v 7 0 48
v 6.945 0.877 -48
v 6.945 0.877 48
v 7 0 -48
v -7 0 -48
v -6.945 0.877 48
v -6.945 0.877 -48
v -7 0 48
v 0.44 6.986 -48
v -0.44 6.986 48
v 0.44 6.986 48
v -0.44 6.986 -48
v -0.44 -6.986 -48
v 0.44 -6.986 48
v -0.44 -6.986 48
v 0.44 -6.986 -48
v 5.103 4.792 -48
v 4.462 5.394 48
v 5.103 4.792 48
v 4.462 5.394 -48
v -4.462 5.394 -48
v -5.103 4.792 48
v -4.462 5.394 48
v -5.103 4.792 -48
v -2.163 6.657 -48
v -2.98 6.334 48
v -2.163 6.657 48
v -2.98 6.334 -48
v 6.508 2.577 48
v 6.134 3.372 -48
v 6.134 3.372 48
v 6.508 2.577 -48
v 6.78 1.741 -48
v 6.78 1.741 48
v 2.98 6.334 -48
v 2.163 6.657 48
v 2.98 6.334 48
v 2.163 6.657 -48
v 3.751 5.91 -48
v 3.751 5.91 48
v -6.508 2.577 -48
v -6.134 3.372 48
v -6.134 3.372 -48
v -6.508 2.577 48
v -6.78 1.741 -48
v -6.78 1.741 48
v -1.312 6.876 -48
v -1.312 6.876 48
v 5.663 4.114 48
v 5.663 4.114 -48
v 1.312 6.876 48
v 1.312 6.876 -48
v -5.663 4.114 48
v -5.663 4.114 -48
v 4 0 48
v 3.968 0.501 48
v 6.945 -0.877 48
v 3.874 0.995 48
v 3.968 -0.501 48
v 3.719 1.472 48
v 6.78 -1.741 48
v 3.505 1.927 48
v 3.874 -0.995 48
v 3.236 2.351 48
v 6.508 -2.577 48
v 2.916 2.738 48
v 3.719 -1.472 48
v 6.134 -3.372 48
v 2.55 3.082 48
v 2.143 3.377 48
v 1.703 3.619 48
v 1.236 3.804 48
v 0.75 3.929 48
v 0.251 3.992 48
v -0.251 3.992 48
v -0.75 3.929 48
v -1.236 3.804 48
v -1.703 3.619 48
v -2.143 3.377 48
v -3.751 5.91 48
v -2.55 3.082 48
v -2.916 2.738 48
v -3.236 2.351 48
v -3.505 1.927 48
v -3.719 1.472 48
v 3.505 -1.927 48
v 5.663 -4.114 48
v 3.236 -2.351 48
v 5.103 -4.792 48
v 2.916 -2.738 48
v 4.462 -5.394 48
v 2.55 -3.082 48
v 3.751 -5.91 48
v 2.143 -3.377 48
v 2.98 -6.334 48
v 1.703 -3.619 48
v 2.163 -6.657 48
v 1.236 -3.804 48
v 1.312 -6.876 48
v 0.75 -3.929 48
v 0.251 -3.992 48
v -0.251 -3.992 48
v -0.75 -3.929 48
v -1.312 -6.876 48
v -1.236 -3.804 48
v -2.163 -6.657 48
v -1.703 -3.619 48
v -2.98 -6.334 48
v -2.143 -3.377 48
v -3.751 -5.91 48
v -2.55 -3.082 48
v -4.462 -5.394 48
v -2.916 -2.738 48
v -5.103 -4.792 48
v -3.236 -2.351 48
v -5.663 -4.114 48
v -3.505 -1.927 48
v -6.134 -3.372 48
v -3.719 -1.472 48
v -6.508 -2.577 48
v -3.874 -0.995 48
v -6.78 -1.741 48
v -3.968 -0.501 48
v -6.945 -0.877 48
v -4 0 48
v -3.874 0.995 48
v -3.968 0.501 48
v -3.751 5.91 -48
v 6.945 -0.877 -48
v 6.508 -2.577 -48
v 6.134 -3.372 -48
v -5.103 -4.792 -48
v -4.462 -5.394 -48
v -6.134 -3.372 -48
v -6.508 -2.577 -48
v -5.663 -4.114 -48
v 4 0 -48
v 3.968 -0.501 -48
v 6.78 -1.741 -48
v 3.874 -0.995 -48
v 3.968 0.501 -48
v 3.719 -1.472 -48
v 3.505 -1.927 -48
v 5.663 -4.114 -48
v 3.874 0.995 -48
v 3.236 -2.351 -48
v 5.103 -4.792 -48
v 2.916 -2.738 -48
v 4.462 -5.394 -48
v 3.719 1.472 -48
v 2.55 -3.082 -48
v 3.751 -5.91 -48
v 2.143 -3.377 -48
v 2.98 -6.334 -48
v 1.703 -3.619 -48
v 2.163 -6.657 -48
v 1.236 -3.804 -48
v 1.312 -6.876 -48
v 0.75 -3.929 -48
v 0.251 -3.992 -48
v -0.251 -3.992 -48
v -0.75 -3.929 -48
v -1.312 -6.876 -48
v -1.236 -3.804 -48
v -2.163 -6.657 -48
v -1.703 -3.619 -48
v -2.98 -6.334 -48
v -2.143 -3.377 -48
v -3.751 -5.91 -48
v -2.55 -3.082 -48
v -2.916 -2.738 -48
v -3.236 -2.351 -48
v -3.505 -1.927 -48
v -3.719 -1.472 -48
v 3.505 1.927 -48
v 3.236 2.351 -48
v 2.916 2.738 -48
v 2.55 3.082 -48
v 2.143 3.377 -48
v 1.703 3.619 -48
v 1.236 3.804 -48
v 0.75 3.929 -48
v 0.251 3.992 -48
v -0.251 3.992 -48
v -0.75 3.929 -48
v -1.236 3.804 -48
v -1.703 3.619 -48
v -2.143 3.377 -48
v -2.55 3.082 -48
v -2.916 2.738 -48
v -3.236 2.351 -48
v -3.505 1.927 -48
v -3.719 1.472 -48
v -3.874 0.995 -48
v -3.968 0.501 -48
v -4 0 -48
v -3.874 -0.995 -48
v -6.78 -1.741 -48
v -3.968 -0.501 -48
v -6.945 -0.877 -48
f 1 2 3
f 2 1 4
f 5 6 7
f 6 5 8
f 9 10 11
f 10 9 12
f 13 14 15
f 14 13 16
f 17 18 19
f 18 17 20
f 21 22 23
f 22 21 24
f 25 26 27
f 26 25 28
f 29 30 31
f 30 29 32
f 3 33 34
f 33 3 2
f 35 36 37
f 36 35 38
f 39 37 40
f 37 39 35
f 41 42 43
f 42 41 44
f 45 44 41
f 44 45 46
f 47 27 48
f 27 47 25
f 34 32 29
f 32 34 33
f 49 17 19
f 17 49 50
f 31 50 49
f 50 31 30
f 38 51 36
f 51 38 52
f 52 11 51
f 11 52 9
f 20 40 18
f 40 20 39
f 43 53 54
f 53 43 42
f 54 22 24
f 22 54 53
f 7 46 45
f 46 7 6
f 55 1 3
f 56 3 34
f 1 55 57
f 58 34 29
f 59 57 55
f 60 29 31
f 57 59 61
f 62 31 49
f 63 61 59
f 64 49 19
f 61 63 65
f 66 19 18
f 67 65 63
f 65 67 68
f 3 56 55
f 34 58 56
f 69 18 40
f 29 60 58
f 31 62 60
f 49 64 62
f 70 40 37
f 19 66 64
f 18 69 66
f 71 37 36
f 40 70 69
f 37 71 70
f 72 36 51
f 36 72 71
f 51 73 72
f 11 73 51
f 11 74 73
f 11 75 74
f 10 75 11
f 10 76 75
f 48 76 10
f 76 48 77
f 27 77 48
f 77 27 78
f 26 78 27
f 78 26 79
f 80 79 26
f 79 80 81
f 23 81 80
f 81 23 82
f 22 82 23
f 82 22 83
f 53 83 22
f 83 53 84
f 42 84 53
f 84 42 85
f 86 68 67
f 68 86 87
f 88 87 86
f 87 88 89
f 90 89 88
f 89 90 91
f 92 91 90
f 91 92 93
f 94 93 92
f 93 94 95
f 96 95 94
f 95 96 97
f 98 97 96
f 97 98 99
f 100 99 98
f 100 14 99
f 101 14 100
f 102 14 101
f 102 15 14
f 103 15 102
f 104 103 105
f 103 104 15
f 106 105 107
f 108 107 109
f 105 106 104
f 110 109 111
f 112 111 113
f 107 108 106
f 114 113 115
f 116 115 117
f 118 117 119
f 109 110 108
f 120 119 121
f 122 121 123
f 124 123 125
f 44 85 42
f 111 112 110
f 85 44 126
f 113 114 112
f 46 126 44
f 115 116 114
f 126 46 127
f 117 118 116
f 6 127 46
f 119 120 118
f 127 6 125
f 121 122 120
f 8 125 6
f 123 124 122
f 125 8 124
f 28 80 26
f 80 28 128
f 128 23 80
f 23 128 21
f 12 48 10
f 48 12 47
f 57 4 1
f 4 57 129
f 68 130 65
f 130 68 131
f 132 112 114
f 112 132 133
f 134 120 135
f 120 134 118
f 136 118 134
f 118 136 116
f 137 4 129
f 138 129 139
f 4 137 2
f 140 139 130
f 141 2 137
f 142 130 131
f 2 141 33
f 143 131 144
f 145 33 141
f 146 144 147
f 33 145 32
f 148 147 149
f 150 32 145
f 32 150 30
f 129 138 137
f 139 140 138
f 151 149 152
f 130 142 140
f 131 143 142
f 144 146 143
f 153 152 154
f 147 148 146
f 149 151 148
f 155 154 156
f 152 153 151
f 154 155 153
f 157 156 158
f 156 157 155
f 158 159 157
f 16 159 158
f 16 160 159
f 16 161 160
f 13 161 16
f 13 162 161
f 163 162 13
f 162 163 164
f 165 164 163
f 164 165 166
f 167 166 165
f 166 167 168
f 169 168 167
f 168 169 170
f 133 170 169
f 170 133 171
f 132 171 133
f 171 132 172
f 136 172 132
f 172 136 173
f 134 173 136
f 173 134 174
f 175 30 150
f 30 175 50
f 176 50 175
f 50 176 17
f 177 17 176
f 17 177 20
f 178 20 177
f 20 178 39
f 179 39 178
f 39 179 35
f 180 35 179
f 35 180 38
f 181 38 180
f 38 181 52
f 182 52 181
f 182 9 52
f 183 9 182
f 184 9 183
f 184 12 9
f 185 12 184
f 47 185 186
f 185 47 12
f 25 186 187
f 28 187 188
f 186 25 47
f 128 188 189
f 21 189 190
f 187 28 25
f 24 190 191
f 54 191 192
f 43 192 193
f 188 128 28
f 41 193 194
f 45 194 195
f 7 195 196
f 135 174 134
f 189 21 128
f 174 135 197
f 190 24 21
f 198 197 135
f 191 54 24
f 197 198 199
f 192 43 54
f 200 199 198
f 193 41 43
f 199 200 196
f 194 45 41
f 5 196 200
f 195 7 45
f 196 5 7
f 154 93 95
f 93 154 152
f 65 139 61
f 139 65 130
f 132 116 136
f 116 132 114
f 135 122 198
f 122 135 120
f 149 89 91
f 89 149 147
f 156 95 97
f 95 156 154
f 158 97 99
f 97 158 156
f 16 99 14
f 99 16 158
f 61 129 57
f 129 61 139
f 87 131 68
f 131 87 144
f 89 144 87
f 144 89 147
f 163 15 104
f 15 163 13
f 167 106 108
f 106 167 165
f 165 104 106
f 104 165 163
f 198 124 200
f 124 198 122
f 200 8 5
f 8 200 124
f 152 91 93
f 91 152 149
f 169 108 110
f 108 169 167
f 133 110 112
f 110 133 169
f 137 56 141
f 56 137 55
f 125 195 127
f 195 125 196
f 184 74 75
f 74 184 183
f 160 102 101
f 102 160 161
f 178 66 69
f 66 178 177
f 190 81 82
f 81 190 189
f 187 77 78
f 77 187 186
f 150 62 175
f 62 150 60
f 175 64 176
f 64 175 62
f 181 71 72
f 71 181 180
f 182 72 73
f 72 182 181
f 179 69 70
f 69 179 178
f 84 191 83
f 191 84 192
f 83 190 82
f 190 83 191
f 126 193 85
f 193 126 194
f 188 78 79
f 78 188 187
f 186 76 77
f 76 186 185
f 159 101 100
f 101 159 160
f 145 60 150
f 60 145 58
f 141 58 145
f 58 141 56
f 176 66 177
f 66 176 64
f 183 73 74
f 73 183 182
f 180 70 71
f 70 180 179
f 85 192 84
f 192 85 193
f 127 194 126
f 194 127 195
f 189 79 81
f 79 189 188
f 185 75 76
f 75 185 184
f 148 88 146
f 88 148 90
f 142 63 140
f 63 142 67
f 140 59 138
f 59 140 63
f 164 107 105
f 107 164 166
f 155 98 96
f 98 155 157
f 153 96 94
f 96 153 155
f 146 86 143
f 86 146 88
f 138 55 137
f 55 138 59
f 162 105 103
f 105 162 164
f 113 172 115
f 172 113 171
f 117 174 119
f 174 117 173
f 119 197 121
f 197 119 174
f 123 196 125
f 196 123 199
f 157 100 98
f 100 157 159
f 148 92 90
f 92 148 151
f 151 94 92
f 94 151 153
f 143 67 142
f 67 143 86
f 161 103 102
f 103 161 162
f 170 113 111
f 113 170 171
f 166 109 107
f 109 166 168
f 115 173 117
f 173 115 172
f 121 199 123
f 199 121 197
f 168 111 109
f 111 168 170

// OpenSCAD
$fn = 50;


difference() {
	union() {
		translate(v = [0, 0, -48.0000000000]) {
			cylinder(h = 96, r = 7.0000000000);
		}
	}
	union() {
		translate(v = [0, 0, -100.0000000000]) {
			cylinder(h = 200, r = 4);
		}
	}
}
